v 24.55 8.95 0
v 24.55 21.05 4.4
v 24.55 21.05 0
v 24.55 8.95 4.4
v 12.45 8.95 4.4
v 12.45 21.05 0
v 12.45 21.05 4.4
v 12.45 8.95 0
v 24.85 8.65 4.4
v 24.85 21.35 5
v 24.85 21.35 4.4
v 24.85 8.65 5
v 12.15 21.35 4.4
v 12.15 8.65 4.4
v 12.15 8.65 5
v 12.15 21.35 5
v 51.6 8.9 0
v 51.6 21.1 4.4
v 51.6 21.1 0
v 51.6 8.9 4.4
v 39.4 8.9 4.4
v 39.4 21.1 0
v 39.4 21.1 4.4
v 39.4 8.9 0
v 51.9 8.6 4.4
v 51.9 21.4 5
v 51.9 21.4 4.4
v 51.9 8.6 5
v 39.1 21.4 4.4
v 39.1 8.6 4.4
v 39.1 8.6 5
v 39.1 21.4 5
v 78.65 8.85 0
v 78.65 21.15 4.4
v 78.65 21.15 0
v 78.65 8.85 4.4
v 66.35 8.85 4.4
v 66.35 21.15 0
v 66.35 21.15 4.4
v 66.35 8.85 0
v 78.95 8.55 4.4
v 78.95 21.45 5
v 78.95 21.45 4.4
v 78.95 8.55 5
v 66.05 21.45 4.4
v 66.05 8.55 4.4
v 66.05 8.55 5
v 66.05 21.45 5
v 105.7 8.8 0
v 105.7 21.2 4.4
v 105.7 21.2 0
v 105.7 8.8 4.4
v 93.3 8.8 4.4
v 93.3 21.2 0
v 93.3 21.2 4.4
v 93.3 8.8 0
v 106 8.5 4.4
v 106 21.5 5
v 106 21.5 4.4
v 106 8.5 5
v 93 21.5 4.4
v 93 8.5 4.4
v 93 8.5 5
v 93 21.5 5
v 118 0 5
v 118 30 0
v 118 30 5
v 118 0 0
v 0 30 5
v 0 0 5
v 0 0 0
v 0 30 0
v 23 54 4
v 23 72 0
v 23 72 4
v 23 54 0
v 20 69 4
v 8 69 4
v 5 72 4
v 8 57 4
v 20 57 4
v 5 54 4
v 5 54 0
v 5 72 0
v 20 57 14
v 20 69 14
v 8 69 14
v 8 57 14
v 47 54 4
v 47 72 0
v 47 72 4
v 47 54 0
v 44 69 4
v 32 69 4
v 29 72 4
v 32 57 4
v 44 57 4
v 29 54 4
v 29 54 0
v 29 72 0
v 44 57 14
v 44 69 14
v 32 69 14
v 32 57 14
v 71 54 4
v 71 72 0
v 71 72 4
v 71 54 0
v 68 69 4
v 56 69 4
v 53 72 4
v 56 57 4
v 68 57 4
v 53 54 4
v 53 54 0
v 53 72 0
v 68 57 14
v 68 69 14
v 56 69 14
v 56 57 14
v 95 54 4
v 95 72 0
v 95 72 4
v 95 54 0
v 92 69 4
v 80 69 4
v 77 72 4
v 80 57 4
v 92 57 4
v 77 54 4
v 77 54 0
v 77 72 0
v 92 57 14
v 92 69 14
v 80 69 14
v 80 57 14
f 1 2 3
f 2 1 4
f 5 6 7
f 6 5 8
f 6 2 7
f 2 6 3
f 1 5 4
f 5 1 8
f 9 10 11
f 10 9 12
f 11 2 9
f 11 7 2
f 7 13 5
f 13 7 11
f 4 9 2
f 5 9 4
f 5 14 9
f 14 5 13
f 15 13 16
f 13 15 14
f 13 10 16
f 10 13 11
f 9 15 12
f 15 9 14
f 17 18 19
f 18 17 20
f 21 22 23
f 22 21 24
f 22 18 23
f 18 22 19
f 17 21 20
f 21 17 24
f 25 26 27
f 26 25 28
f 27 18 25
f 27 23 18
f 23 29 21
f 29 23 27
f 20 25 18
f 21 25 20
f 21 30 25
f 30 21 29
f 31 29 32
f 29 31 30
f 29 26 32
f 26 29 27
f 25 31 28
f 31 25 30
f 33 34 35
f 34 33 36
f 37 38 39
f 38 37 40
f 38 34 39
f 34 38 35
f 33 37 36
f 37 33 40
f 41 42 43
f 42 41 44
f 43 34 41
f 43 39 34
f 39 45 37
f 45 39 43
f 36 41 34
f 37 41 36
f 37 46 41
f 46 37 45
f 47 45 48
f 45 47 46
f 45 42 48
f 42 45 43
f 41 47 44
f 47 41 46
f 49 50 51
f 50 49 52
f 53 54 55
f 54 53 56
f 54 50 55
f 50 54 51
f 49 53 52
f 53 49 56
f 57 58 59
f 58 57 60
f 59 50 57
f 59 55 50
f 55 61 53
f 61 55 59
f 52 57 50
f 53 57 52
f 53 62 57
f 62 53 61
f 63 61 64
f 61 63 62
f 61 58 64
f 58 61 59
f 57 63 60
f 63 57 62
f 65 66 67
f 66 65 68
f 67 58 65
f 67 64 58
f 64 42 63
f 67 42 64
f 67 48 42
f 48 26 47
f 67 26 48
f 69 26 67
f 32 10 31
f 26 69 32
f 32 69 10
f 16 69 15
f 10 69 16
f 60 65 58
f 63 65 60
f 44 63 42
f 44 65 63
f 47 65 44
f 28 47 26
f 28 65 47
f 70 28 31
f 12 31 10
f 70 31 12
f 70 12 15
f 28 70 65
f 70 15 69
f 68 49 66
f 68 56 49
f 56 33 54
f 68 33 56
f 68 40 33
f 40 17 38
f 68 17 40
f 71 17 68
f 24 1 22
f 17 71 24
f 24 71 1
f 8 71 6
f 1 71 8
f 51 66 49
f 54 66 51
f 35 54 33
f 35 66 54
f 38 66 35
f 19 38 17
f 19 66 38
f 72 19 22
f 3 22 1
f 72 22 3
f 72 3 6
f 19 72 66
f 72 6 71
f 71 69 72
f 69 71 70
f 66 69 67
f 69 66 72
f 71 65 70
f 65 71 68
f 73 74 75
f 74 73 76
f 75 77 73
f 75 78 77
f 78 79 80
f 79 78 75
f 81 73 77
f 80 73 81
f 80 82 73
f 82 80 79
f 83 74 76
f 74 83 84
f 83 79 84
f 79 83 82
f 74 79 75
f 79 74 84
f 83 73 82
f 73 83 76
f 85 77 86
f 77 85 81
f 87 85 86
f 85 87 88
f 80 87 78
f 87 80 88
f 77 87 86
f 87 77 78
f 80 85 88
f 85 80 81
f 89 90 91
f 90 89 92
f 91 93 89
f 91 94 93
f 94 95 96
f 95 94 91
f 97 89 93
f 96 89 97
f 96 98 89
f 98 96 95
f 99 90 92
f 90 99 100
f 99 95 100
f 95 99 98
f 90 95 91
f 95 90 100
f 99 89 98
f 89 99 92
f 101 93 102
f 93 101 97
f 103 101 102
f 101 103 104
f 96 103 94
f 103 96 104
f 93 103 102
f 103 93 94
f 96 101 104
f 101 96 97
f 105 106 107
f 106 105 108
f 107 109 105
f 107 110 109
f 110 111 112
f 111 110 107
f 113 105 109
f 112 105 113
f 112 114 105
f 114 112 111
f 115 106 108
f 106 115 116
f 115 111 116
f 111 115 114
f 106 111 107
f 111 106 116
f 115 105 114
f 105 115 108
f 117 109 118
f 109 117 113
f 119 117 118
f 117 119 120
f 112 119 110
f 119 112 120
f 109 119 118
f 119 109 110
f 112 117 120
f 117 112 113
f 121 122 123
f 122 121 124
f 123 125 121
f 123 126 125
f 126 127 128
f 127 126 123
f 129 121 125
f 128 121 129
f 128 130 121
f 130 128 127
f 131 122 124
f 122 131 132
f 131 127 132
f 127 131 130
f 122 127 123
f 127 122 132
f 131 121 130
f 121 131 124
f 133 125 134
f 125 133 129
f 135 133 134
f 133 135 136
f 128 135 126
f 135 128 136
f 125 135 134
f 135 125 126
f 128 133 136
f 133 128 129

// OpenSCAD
// Printable Joinery Atlas — Clearance Test Kit v0.1
// Unit: mm
// Definition: total clearance C = socket width - peg shank width.
// First-round values: 0.10 / 0.20 / 0.30 / 0.40 mm.

$fn = 48;
peg = 12.0;
clearances = [0.10, 0.20, 0.30, 0.40];
board_t = 5.0;
cell_w = 27;
board_margin = 5;
board_d = 30;
lead_in = 0.6;
peg_h = 10;
head_xy = 18;
head_h = 4;
peg_spacing_y = 24;

module socket(c){
  // main through socket
  translate([0,0,-0.1]) cube([peg+c, peg+c, board_t+0.2], center=false);
  // shallow larger top lead-in; square rather than decorative chamfer for predictable print
  translate([-lead_in/2,-lead_in/2,board_t-lead_in])
    cube([peg+c+lead_in, peg+c+lead_in, lead_in+0.2], center=false);
}

module test_board(){
  board_w = board_margin*2 + cell_w*len(clearances);
  difference(){
    cube([board_w, board_d, board_t]);
    for(i=[0:len(clearances)-1]){
      x = board_margin + i*cell_w + (cell_w-(peg+clearances[i]))/2;
      y = (board_d-(peg+clearances[i]))/2;
      translate([x,y,0]) socket(clearances[i]);
    }
  }
}

module peg_tool(){
  // head on bed, shank upward; insertion end is top.
  union(){
    cube([head_xy,head_xy,head_h]);
    translate([(head_xy-peg)/2,(head_xy-peg)/2,head_h]) cube([peg,peg,peg_h]);
  }
}

// Board + four loose pegs in one STL as disconnected shells.
test_board();
for(i=[0:len(clearances)-1]){
  translate([board_margin+i*(head_xy+6), board_d+peg_spacing_y, 0]) peg_tool();
}
